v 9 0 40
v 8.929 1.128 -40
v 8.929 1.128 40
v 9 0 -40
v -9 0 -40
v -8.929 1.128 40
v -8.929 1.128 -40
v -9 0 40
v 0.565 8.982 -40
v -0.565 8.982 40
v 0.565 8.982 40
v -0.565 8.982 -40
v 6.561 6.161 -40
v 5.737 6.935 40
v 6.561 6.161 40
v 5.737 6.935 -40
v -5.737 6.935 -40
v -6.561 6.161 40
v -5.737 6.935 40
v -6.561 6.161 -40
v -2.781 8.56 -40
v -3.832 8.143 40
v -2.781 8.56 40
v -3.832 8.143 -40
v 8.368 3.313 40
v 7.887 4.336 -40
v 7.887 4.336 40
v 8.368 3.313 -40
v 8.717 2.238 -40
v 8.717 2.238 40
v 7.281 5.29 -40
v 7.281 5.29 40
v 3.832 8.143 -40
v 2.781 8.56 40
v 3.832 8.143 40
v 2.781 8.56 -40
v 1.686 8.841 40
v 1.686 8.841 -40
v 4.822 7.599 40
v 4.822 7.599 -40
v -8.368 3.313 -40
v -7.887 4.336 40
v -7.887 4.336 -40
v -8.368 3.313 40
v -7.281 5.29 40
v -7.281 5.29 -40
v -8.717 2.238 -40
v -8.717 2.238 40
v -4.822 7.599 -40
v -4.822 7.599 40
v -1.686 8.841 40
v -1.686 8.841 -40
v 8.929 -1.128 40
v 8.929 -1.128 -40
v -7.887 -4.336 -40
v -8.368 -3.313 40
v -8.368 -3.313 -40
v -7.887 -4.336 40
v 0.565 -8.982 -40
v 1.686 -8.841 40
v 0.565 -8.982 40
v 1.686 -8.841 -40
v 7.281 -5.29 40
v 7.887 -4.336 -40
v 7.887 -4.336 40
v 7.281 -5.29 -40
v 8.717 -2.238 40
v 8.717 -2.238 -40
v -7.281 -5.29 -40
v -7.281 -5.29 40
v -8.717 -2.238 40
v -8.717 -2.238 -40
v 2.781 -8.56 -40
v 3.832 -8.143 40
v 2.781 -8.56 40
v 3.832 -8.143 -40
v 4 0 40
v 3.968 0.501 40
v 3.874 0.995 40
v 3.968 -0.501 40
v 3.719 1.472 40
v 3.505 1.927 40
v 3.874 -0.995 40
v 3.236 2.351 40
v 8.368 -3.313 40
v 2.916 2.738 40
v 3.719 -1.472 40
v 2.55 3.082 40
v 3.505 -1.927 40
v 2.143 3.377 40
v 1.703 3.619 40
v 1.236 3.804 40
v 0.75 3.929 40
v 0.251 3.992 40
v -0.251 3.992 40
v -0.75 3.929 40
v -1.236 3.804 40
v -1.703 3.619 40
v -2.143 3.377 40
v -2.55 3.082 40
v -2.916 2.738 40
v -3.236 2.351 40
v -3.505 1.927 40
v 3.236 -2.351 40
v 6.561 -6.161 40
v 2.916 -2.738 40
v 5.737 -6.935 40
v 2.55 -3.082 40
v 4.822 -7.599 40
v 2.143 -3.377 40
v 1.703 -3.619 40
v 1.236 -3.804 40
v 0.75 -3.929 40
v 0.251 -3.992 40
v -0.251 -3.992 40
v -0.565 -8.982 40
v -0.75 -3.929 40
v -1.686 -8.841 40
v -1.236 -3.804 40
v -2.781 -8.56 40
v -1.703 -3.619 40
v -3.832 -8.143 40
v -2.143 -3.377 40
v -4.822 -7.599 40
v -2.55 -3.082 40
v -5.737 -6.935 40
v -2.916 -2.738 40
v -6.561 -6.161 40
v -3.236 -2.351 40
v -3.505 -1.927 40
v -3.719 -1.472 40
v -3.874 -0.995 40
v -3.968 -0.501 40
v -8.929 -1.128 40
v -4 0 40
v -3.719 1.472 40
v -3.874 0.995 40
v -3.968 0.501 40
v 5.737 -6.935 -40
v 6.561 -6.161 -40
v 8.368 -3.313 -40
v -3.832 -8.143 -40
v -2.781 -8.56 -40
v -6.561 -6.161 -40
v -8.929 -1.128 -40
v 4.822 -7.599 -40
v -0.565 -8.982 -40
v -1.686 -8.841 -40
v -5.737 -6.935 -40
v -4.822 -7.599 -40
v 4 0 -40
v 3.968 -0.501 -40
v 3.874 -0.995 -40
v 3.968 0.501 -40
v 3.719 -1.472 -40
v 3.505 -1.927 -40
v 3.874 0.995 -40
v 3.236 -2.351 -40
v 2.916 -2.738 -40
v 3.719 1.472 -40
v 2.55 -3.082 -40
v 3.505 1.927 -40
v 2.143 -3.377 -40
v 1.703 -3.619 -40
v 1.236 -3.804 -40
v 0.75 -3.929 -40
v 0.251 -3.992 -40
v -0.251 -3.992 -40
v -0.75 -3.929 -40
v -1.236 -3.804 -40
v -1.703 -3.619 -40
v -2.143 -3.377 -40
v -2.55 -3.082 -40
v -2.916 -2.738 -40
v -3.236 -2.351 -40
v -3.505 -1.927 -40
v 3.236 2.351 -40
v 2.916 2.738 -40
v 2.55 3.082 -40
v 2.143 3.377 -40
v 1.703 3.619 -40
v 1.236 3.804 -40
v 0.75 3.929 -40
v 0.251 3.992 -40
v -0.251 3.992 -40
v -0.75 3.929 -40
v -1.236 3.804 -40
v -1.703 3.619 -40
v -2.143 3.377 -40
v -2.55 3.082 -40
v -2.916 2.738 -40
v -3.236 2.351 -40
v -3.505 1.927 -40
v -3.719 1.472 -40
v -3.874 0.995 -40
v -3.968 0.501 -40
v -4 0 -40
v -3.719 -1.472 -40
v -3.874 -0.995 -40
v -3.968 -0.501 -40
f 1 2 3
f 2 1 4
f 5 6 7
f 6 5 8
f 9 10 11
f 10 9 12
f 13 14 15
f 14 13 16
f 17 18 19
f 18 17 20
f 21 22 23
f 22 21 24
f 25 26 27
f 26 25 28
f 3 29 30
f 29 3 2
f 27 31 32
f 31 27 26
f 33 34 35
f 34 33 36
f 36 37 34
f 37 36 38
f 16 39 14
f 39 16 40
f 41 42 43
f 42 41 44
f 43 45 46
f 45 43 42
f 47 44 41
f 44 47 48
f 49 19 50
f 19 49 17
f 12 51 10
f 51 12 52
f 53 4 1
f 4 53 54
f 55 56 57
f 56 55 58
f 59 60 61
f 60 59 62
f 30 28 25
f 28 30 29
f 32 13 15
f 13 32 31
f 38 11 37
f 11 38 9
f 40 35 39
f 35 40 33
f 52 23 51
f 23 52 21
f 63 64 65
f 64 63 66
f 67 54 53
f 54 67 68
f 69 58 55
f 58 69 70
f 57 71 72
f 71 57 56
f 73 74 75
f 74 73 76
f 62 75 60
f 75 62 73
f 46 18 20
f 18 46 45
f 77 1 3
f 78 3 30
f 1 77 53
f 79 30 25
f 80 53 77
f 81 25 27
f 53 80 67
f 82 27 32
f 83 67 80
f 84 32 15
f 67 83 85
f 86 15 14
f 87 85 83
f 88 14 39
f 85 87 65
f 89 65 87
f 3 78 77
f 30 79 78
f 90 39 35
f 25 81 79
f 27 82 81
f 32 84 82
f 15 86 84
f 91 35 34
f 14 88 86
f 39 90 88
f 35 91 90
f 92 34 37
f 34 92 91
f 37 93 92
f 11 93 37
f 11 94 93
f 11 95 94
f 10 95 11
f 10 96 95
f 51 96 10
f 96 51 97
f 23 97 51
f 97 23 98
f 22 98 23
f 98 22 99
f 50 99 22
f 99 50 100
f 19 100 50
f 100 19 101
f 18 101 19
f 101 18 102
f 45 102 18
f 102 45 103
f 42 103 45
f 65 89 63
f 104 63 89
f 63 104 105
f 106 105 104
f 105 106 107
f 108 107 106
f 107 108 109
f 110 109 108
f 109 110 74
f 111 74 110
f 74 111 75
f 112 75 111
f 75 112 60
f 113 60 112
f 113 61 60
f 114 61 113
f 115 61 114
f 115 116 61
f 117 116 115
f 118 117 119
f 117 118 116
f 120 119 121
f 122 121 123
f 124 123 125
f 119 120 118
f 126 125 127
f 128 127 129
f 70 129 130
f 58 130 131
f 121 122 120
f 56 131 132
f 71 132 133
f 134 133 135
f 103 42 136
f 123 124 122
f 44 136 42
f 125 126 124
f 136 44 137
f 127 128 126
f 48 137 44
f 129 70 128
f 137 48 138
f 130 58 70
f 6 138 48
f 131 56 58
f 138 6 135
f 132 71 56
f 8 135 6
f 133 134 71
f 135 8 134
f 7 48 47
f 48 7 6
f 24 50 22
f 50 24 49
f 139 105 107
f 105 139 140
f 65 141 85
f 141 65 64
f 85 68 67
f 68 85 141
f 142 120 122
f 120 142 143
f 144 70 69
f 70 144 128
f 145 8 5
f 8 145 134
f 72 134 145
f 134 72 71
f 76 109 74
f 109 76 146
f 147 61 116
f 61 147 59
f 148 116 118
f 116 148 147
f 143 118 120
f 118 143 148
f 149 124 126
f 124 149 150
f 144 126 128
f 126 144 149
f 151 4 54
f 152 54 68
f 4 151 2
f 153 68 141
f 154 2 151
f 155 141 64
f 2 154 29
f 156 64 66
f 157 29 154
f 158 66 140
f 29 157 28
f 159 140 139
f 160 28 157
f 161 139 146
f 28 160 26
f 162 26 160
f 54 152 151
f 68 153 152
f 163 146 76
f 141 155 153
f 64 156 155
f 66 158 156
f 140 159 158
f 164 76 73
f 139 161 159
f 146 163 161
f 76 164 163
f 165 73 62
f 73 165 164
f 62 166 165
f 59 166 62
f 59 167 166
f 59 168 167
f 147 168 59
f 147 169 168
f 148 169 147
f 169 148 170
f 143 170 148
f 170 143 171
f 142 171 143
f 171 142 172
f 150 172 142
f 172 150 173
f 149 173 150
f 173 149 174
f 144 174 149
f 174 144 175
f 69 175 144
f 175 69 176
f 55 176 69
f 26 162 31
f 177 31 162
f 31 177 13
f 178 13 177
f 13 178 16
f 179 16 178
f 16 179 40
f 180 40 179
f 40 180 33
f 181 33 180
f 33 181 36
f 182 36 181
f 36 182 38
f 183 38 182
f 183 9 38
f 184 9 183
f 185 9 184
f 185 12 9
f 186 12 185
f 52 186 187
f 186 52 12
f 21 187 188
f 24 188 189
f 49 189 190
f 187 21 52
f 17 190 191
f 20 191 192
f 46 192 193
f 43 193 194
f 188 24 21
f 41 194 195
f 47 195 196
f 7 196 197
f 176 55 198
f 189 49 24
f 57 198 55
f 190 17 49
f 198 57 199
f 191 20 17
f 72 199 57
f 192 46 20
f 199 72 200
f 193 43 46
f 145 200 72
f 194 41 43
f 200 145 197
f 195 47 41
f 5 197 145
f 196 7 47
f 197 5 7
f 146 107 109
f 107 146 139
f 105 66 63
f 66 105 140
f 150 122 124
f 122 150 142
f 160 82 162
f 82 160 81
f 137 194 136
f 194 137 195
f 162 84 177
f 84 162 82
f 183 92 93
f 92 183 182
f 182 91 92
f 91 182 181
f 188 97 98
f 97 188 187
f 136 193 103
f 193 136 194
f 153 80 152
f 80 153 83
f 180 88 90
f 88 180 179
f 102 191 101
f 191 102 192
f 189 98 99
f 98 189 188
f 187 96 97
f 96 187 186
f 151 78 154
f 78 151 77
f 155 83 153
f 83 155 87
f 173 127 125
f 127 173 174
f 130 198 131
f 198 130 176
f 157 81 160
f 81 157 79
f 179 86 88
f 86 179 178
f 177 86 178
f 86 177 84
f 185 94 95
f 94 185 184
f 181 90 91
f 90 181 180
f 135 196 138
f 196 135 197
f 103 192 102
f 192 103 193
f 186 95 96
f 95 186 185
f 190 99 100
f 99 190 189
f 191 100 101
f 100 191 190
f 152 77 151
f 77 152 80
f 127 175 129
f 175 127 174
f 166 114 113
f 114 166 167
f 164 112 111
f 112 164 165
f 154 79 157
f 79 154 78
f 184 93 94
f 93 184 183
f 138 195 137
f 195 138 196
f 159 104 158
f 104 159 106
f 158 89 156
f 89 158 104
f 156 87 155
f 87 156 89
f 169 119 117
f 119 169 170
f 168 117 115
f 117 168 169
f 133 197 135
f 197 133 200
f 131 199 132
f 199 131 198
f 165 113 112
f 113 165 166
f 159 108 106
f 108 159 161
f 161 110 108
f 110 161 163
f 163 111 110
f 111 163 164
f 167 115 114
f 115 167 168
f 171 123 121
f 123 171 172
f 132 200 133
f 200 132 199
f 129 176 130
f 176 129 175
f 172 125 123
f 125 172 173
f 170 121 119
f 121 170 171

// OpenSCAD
$fn = 50;


difference() {
	union() {
		translate(v = [0, 0, -40.0000000000]) {
			cylinder(h = 80, r = 9.0000000000);
		}
	}
	union() {
		translate(v = [0, 0, -100.0000000000]) {
			cylinder(h = 200, r = 4.0000000000);
		}
	}
}
